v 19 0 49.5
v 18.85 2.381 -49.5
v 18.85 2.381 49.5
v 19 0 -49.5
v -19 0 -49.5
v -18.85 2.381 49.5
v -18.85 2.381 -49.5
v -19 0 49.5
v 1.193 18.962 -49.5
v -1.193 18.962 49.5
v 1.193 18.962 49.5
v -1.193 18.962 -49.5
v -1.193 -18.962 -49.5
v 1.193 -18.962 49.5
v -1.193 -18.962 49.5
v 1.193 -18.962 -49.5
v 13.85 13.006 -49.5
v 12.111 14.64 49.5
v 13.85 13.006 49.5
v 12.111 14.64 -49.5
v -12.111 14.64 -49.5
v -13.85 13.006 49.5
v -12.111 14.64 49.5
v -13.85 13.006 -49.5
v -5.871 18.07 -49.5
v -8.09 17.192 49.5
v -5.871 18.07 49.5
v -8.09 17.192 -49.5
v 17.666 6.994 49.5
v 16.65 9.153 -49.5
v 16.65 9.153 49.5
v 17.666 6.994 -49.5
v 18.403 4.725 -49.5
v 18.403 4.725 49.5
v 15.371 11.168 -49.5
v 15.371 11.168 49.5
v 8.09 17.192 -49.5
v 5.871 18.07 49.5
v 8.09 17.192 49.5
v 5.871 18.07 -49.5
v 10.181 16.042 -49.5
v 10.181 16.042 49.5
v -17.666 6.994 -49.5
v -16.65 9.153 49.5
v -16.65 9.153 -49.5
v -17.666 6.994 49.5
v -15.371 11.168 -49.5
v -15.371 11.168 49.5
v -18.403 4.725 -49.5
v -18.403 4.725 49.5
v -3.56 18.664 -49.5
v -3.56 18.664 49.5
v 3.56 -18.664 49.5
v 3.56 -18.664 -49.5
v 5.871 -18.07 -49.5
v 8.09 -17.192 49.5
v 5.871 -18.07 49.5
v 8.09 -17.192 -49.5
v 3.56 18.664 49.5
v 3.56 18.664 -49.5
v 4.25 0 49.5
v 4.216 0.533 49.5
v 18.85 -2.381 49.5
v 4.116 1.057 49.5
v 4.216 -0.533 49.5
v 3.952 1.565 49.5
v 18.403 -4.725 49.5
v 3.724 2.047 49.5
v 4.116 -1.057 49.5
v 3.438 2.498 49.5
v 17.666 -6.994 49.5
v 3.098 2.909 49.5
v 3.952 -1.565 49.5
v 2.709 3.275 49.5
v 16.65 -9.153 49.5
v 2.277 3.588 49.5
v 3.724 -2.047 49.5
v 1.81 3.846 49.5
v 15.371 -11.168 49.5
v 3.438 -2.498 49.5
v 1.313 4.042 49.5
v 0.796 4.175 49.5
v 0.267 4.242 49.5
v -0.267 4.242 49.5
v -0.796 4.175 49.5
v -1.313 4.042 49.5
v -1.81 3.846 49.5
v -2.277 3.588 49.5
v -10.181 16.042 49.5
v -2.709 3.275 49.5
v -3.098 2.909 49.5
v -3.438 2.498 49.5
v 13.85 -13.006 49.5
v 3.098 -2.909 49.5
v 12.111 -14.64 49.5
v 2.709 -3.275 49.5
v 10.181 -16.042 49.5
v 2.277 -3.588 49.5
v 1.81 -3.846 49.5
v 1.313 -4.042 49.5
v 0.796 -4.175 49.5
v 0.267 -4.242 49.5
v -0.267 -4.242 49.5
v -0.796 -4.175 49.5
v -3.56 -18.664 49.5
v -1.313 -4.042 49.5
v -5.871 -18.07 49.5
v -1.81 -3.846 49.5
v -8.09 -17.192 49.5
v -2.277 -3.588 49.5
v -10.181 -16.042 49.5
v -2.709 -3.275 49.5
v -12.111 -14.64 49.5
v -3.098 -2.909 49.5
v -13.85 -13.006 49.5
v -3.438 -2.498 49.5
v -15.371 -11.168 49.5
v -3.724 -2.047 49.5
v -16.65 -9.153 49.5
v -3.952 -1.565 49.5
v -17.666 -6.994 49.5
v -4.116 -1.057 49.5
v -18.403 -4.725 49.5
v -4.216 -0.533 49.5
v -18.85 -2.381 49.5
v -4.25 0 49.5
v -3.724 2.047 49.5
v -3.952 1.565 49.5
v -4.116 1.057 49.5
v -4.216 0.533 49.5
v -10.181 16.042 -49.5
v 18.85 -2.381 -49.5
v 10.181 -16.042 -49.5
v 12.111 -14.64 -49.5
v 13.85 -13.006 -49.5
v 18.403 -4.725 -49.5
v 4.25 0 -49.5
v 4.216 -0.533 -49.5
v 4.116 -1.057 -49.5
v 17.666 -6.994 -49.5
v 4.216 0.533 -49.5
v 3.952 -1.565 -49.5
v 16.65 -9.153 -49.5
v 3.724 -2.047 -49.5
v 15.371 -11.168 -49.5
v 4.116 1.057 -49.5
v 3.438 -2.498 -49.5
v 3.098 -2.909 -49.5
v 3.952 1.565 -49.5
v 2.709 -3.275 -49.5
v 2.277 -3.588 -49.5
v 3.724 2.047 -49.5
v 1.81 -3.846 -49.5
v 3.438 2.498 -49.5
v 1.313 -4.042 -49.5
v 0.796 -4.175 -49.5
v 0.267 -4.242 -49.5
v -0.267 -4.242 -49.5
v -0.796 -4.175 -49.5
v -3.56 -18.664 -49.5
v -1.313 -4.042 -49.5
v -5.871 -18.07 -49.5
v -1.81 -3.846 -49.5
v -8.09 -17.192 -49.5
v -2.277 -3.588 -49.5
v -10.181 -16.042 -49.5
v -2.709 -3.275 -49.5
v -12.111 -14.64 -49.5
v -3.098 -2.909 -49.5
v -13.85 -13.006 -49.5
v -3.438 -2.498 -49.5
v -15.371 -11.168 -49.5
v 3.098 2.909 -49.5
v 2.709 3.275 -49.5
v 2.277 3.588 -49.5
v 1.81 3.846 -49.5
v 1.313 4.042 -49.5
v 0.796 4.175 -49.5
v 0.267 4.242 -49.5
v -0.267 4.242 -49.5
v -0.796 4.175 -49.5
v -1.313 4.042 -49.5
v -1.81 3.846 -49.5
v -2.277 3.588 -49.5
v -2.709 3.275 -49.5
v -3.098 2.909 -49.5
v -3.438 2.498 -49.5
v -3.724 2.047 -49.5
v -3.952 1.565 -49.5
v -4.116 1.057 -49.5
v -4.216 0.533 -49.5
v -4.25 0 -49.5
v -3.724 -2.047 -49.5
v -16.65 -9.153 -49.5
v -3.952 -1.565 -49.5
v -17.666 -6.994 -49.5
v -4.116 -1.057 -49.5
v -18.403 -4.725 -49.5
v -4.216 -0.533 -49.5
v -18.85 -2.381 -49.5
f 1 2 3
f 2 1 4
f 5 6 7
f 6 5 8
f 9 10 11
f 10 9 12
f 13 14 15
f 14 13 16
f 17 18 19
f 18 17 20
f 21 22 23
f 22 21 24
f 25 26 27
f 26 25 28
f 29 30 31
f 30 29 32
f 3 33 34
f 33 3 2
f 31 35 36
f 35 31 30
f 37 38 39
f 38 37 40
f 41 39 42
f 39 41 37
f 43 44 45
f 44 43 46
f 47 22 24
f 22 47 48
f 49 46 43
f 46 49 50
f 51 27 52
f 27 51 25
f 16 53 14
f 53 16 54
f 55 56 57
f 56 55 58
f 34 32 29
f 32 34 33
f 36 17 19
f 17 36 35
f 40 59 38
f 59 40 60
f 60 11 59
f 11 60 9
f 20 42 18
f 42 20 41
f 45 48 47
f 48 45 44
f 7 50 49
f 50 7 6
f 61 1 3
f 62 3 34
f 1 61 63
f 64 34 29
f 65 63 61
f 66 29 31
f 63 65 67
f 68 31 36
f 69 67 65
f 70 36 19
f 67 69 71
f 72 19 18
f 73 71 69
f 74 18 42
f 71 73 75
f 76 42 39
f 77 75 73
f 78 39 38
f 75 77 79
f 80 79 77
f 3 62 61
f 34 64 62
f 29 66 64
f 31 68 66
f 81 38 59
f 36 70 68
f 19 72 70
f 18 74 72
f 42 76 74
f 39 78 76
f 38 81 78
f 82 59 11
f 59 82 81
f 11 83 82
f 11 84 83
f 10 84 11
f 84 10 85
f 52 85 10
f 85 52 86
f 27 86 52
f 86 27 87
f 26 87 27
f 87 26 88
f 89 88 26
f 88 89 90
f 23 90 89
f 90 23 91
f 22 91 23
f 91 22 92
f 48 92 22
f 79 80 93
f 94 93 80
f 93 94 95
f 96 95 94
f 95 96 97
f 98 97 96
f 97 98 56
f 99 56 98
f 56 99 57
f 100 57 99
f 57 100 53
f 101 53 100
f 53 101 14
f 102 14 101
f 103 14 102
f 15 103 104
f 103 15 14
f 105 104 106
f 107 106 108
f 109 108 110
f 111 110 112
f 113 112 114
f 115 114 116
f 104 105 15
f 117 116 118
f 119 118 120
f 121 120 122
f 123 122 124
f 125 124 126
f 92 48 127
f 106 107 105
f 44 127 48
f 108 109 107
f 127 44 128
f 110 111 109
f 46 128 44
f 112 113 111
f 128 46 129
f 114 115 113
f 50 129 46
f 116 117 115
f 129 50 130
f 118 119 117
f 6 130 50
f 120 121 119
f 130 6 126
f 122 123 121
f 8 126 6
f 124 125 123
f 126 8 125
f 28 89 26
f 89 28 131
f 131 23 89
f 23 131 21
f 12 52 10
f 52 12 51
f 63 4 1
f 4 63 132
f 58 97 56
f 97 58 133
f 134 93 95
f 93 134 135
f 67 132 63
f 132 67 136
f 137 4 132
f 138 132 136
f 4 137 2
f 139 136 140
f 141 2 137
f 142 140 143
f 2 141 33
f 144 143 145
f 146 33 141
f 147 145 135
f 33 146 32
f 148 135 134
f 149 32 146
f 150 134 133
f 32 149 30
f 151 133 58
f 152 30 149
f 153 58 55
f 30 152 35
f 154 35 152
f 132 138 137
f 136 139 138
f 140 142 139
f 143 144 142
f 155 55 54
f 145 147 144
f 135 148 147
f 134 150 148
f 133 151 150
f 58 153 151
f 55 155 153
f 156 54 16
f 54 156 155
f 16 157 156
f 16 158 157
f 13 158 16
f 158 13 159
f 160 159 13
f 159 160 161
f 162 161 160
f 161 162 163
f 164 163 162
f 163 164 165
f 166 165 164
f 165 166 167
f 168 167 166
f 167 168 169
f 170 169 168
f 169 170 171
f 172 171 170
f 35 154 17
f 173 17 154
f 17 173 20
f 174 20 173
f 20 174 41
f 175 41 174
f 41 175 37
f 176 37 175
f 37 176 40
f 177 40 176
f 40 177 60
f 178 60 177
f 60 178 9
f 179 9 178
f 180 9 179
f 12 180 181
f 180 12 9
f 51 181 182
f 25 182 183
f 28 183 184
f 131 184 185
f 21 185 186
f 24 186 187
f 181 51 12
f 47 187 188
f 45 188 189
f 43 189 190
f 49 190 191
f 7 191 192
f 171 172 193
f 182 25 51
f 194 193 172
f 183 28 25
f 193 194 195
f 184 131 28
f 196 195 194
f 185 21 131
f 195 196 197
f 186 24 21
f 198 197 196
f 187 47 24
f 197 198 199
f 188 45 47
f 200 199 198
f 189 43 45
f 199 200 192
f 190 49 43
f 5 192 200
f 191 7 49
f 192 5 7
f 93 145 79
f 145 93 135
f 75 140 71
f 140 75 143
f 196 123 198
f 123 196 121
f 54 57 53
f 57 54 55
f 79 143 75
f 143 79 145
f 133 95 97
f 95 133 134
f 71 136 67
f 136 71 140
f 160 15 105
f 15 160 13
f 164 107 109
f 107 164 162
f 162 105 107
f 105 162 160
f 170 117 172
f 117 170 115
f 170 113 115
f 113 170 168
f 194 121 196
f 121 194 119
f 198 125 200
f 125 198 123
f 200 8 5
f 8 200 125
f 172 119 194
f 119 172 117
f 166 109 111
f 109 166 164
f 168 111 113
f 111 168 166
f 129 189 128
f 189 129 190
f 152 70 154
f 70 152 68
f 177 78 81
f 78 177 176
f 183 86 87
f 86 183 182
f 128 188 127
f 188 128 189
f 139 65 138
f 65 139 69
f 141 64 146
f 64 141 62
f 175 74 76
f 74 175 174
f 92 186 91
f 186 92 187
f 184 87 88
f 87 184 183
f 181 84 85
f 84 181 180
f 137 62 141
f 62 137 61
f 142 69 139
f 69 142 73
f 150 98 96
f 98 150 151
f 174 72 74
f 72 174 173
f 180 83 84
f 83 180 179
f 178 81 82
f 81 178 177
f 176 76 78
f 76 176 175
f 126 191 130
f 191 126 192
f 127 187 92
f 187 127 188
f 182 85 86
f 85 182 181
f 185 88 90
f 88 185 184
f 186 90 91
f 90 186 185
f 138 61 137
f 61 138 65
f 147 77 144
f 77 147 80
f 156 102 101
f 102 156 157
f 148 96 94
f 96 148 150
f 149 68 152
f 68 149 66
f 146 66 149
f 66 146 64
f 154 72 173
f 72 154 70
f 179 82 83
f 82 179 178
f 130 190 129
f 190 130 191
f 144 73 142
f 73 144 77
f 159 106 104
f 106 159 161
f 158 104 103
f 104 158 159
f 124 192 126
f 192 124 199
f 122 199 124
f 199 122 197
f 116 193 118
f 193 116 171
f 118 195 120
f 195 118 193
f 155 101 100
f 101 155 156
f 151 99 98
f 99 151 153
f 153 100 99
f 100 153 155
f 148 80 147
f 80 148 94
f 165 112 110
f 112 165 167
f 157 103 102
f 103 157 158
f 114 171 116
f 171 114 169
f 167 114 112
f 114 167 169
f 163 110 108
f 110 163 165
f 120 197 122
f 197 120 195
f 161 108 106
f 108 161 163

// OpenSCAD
$fn = 50;


difference() {
	union() {
		translate(v = [0, 0, -49.5000000000]) {
			cylinder(h = 99, r = 19.0000000000);
		}
	}
	union() {
		translate(v = [0, 0, -100.0000000000]) {
			cylinder(h = 200, r = 4.2500000000);
		}
	}
}
